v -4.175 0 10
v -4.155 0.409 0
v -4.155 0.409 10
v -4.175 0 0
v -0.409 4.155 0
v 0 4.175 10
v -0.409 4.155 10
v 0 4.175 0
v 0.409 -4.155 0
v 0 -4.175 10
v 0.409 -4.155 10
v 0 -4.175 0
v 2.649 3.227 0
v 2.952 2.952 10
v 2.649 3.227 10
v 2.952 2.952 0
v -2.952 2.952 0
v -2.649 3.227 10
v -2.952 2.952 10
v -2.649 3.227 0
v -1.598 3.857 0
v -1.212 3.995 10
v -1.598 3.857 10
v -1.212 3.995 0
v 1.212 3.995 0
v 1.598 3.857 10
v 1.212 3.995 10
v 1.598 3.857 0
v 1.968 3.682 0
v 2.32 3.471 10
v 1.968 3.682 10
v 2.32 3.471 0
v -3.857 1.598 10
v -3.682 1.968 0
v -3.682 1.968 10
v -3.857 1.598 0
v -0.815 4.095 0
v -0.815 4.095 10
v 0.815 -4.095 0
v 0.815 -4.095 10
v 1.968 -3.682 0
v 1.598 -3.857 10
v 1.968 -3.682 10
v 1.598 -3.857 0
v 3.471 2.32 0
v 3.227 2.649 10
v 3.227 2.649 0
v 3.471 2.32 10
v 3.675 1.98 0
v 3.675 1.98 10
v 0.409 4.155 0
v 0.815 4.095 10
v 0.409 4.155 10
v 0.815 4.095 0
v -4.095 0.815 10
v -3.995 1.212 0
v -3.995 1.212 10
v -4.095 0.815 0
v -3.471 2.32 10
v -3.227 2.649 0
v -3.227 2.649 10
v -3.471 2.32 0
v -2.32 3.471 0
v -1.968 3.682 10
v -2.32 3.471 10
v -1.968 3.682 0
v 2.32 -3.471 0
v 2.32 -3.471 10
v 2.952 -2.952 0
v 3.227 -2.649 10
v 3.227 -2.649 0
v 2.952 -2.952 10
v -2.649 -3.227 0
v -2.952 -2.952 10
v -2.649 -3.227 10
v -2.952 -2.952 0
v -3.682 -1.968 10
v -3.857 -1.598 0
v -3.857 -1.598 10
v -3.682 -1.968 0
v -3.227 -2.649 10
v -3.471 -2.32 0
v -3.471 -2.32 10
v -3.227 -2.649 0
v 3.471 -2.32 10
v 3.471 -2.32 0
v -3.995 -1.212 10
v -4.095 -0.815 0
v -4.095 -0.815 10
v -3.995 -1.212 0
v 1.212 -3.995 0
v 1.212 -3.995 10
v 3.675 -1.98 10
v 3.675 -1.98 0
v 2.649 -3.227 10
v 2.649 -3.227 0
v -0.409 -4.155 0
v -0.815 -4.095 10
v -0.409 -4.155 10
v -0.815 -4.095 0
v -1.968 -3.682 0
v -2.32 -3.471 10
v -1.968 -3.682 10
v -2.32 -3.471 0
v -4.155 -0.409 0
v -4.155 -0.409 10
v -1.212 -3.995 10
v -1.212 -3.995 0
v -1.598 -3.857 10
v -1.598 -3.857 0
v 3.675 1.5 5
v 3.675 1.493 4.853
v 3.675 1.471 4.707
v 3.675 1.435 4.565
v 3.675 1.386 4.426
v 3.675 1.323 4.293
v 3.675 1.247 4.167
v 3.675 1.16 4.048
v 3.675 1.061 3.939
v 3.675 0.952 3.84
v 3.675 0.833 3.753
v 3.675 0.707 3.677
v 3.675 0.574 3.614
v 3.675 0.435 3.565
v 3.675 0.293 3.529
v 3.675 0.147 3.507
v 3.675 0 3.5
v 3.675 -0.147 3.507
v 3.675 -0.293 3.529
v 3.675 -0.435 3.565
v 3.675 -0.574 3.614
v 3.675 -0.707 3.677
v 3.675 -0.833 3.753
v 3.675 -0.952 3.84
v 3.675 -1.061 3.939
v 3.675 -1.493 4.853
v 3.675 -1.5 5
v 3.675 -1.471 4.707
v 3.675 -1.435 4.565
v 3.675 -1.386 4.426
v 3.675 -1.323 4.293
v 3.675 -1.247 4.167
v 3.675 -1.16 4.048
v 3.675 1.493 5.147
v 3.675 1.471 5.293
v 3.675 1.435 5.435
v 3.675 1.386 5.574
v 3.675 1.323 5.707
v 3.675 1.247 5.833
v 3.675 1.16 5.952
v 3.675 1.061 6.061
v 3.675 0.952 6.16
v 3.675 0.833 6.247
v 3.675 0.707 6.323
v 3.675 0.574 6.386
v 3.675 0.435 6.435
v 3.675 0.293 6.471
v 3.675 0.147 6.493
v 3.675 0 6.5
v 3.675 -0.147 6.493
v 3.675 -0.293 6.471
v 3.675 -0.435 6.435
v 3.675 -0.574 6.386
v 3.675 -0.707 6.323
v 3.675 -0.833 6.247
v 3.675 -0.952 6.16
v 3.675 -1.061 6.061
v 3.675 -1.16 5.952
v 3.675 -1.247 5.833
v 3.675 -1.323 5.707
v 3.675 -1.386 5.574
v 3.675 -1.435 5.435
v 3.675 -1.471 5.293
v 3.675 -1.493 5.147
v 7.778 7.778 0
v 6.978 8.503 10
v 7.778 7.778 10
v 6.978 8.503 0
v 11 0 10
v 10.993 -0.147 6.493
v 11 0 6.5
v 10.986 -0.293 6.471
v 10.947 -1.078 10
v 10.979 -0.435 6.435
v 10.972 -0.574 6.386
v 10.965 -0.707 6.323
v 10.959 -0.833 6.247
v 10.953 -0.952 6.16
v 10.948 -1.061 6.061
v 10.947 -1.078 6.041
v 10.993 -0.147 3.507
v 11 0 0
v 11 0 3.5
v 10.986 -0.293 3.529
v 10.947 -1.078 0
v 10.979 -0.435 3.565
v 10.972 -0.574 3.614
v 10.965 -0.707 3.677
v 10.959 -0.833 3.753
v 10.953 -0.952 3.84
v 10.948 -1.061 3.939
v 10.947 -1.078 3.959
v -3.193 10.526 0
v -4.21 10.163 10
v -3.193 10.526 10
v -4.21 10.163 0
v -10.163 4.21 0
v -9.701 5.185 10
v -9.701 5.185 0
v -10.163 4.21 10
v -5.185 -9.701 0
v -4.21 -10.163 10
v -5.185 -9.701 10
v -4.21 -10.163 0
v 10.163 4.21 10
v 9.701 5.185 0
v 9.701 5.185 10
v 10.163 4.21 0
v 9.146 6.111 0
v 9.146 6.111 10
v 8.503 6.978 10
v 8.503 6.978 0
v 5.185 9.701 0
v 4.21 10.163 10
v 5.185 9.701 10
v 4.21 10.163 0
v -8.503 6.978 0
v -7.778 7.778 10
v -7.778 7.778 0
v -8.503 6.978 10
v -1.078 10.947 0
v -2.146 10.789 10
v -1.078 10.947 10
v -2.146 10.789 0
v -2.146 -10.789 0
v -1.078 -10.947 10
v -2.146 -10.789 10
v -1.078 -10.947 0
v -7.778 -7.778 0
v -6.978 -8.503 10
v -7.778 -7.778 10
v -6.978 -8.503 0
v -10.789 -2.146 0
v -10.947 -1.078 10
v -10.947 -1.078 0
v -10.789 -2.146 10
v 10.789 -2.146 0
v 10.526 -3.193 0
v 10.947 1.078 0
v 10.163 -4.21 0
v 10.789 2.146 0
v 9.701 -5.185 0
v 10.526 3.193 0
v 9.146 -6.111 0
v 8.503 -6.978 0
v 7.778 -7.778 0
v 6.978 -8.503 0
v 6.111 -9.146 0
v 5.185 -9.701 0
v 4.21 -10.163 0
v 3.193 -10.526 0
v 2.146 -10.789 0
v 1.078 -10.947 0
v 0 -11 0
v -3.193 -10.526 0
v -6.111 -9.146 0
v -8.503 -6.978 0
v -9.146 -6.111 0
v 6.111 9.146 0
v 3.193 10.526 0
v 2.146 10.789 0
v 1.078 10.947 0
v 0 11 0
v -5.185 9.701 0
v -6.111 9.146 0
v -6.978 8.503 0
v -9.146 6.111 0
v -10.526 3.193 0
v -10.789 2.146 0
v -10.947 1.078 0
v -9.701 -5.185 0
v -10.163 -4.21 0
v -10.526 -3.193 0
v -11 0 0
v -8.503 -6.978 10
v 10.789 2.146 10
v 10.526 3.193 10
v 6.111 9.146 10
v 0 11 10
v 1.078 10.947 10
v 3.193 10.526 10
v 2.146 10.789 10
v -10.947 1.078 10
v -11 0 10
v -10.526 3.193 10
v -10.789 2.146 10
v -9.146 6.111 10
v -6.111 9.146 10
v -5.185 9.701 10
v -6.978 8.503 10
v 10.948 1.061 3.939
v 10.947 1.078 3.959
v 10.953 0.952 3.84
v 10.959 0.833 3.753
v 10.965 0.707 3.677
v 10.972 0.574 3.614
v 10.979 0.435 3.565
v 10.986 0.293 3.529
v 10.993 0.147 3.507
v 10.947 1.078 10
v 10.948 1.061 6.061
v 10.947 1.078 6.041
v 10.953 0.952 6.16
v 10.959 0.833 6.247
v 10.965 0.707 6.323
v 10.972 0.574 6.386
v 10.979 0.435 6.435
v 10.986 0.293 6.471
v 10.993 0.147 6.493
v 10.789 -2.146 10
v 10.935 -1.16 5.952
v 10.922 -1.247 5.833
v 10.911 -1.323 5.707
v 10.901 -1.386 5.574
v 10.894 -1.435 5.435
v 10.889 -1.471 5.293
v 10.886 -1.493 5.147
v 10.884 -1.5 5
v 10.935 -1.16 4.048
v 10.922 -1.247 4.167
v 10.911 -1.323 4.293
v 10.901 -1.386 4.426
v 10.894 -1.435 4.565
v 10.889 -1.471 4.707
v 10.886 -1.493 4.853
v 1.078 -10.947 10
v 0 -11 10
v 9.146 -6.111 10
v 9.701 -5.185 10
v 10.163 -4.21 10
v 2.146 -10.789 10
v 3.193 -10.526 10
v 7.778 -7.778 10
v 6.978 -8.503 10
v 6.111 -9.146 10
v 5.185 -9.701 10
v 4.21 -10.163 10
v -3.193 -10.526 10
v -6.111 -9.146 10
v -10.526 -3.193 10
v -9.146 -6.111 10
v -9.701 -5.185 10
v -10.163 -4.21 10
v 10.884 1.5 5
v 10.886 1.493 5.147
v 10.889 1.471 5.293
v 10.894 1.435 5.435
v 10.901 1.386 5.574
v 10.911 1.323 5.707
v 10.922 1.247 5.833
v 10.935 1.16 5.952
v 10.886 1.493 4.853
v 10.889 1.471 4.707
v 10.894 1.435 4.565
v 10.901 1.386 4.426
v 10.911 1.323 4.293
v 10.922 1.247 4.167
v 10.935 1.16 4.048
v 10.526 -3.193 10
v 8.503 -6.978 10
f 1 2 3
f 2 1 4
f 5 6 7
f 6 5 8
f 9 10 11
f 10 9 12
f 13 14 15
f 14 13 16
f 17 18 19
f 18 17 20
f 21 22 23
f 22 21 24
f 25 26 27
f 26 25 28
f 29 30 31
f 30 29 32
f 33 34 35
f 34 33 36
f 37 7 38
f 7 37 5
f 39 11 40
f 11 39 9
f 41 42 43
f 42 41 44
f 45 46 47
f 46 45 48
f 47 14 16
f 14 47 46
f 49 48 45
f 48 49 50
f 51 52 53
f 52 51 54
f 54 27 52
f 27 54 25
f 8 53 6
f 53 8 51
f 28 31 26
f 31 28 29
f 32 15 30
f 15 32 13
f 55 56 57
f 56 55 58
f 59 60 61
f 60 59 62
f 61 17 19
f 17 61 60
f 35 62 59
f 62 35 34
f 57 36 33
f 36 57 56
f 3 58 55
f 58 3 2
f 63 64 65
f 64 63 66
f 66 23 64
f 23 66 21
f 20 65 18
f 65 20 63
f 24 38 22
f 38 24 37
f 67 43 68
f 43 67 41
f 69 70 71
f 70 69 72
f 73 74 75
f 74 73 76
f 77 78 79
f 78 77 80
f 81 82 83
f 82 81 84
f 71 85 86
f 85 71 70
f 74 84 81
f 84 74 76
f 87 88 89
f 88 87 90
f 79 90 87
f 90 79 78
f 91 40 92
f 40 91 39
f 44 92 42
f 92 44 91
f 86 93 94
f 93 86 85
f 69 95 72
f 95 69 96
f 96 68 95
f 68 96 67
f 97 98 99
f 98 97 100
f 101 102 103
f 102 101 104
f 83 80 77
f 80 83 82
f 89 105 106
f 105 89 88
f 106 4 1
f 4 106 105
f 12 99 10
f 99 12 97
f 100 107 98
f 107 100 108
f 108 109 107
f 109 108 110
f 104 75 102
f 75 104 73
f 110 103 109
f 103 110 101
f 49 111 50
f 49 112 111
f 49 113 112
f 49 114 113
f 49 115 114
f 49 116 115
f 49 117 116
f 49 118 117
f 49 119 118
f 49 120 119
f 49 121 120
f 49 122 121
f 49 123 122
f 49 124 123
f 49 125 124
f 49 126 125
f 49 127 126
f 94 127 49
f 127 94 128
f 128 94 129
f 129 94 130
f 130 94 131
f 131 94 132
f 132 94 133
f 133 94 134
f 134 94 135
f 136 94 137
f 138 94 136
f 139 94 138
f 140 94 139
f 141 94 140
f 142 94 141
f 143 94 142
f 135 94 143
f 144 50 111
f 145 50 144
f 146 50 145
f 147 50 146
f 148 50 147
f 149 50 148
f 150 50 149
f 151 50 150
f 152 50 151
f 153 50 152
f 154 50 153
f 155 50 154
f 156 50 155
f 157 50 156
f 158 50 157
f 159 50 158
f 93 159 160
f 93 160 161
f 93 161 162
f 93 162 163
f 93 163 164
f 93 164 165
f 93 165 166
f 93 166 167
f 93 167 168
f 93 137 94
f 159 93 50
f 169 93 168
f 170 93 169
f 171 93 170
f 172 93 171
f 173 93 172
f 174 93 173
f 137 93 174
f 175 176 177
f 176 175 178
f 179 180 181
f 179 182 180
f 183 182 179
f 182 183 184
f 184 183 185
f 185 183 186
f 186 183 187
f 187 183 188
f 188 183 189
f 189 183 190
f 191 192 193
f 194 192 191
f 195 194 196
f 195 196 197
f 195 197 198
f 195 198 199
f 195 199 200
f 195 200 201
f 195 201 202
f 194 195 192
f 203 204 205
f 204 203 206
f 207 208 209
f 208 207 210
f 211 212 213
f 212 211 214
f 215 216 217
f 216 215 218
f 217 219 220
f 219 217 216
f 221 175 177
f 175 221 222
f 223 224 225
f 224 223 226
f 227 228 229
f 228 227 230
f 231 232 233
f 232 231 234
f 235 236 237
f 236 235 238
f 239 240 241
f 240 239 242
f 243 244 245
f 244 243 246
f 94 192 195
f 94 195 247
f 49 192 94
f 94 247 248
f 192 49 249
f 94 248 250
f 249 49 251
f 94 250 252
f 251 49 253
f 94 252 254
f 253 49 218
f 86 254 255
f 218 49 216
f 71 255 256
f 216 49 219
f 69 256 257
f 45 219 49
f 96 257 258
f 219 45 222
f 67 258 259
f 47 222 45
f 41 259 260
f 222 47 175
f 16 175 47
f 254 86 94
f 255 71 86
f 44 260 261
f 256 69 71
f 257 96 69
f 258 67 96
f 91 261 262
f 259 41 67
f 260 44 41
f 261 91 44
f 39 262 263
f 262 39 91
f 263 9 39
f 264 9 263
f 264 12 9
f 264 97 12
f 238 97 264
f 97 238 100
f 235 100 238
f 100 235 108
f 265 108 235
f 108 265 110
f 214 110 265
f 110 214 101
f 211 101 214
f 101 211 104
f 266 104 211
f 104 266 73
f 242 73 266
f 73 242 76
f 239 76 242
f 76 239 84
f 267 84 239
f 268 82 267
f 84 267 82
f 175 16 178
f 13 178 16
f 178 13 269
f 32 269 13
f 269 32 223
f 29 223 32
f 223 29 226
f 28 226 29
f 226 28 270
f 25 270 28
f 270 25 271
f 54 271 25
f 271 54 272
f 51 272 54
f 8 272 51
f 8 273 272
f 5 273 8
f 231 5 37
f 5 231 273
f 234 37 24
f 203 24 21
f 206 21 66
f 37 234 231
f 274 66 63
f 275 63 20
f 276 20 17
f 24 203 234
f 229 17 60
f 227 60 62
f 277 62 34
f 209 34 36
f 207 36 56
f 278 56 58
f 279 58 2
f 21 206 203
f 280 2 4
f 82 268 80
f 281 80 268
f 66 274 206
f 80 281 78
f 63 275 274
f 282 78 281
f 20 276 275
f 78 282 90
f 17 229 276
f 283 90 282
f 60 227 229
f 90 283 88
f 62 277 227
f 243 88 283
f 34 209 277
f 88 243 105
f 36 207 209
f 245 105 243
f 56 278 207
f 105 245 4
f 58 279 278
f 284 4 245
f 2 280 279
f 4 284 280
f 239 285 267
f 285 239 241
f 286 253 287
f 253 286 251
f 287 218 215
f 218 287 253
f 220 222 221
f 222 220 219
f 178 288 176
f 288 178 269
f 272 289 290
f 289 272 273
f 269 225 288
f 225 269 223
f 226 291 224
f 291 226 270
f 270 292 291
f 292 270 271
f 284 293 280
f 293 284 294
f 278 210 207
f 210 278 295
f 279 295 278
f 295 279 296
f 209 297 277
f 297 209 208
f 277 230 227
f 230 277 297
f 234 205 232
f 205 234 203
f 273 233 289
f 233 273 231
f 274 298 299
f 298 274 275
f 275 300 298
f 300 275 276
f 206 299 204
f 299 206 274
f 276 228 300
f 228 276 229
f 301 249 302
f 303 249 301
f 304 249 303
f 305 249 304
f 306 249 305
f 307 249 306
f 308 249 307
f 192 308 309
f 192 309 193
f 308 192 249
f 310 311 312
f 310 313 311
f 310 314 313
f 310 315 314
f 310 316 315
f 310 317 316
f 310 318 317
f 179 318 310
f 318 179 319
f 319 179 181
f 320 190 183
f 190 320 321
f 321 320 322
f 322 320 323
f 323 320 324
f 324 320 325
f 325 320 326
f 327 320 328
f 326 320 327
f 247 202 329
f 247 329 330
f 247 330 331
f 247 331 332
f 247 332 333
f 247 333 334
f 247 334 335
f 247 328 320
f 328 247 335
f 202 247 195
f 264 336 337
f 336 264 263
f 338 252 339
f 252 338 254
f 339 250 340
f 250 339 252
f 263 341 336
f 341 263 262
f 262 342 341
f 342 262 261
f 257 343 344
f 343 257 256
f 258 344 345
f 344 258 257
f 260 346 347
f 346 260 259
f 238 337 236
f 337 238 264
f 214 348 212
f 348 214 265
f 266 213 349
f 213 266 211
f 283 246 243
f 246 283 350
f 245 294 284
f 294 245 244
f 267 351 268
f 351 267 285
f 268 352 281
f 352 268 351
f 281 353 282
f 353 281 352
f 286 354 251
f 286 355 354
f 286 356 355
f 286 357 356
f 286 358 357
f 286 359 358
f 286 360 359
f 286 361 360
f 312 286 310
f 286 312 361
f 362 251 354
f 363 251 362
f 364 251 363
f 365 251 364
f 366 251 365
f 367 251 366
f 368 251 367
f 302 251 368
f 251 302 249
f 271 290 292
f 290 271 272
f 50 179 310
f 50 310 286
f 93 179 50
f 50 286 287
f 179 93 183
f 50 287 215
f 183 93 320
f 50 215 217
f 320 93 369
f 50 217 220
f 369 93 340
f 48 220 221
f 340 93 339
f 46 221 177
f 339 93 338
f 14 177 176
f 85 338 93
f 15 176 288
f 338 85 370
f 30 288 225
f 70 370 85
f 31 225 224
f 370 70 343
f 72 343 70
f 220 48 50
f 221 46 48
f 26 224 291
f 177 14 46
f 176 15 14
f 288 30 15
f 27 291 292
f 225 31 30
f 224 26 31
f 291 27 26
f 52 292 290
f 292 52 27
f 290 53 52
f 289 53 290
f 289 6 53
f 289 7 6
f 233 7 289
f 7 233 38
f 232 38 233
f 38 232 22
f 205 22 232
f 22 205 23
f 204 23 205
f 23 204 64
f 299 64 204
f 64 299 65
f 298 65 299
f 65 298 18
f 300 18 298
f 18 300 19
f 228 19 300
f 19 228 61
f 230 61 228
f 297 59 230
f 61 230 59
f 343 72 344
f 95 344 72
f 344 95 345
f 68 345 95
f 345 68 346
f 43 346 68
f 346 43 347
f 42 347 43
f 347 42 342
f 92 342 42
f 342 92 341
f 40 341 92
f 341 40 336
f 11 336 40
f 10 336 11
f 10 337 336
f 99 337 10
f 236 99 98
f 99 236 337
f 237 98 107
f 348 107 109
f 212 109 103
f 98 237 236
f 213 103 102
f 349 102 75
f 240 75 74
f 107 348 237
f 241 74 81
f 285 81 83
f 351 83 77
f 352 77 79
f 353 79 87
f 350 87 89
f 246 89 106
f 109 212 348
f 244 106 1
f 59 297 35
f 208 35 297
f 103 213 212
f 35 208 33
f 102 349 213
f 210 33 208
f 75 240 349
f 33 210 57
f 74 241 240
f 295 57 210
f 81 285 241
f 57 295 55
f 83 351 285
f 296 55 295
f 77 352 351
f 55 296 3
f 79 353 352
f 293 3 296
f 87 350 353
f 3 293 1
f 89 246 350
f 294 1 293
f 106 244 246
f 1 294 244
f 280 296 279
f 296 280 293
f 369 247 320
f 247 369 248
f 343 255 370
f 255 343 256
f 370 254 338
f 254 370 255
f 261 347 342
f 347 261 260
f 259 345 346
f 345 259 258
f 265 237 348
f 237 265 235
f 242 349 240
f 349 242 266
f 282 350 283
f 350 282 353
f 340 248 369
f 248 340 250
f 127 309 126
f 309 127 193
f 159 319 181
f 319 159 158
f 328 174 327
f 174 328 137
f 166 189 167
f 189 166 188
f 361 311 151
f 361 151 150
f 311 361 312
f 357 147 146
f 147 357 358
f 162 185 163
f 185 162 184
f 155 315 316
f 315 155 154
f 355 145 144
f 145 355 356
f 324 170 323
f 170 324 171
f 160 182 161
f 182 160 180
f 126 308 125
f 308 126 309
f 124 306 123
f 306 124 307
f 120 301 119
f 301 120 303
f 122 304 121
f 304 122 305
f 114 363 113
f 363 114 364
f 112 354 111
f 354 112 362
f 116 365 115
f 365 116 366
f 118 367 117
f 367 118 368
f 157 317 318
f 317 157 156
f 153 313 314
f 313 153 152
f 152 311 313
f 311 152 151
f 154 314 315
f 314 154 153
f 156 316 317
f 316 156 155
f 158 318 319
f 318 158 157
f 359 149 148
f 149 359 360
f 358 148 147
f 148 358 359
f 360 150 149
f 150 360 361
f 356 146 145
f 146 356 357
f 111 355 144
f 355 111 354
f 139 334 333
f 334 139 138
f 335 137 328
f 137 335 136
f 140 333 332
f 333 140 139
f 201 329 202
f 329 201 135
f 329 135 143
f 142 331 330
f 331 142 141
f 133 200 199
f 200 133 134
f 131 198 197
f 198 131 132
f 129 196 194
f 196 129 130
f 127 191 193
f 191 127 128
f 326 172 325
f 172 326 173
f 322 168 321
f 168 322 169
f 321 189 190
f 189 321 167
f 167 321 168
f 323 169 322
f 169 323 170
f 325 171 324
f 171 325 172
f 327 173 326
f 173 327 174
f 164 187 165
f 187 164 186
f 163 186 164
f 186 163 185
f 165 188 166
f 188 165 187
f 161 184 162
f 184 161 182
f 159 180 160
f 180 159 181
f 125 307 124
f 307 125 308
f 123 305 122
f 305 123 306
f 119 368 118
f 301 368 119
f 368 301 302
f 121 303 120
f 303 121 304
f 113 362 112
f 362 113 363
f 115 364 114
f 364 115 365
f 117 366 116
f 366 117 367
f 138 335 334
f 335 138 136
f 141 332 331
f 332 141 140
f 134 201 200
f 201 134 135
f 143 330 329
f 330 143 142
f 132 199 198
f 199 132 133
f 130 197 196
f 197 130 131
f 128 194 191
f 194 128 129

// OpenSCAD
// file: parameters.scad
// =============================================================================
// Gen-BS — nightly 2026-10-09 (physics_scorer, honest magpylib watts)
// Pull the whole machine 2 mm inward: poles at R48 (was R50) with 26–68 mm bobbins and an 18.5 mm build. Shorter mean turn length lets each coil hold 612 turns on about 356 m of copper — ~14 m less than Gen-BO, which leaves real slack on a ~390 m spool for leads, a re-wind or a short spool — for about 1.7 % less power. Same Ø134 steel discs as Gen-BO.
// Clocking 0 deg (magnets N facing S) + D-flat keyed bore + index notch + flip-symmetric hole map.
// Windable 2-piece bobbin; turns = physics_scorer turns_fit; copper only between flanges.
// Steel back-iron: 2× Ø134 × 4.76 mm (3/16") mild-steel discs (steel_backiron_disc.dxf); magnets sit ON the steel
// (through-pockets) -> score with --back-iron.
// =============================================================================
topology            = "dual_rotor";

// --- Wire / winding (physics_scorer winding-fit) -------------------------------
wire_awg            = 26;
wire_od             = 0.45;     // insulated OD mm (bare 0.405)
fill_realistic      = 0.65;     // insulated-wire area / window (DENSE layered wind with a jig; scorer cap 0.65)
turns               = 612;       // = physics_scorer turns_fit (do NOT raise)
coil_former_type    = "bobbin";
coil_core_inset     = 18.50;     // radial copper build: hub = copper boundary inset by this
wind_build_axial    = 0.0;      // nothing proud of the flanges
wind_build_radial   = 0.0;

// --- Bobbin (base + lid) ---------------------------------------------------------
coil_id_r           = 26.00;    // copper boundary sector
coil_od_r           = 68.00;
span_deg            = 52.72;    // = pitch - 2*asin((wall+0.85)/coil_id_r) -> >=1.2 mm stator web
former_web          = 8.10;     // copper height between flanges (TALL copper: steel keeps Bz up)
flange_t            = 0.80;     // >= 0.8 mm FDM wall rule (tall winds push on the flanges)
wall                = 0.80;     // flange lip beyond copper
former_bare_h       = former_web + 2 * flange_t;
coil_envelope_h     = former_bare_h + 2 * wind_build_axial;
tab_w               = 7.0;
tab_len             = 7.0;
tab_h               = former_bare_h / 2;
pin_d               = 1.9;      // 1.75 mm filament locating pin
coil_mount_r        = coil_od_r + 0.2 + 4.0;
lead_y              = 1.6;
lead_slot_w         = 0.9;
lead_groove_d       = 0.6;

// --- Gap -------------------------------------------------------------------------
run_clear           = 0.50;     // rotor face -> flange
gap_spacer_h        = run_clear + wind_build_axial;
m2m                 = coil_envelope_h + 2 * run_clear;   // rotor face to rotor face (= gap_sleeve length)

// --- Stator ----------------------------------------------------------------------
coil_stations       = 6;
bay_clear           = 0.25;
stator_thick        = former_bare_h;                        // bobbins flush both faces
stator_od           = 156.0;
shaft_clear_stator  = 14.0;     // stator is static; gap sleeve OD 12 spins inside

// --- Rotor(s) --------------------------------------------------------------------
magnet_Br           = 1.43;     // N52
magnet_d_large      = 20.0;
magnet_h_large      = 5.0;      // one O20x5 per pocket
magnet_h_small      = 5.0;      // one O5x5 per pocket
halbach_magnetisation = "diametric"; // O5x5 assist magnets MUST be DIAMETRICALLY magnetised (tangential)
rotor_b_same_axis   = true;     // same-index magnets share one axis: N faces S across the gap
large_pocket_d      = 20.3;
small_pocket_d      = 5.3;
pocket_h            = 5.00;     // THROUGH the carrier: magnet back face sits on the steel disc (FLUSH seat: carrier = magnet height, magnet face level with the rotor face)
large_n             = 8;
R_large             = 48.0;
R_small_inner       = 41.8;
R_small_mid         = 48.0;
R_small_outer       = 54.2;
small_r_list        = [R_small_inner, R_small_mid, R_small_outer];   // O5 pockets between poles
carrier_od          = 134.0;
carrier_thick       = pocket_h;
hub_h               = 12.0;     // > steel_t + insert: radial set-screw clears the steel
hub_od              = 24.0;     // slim hub so the M4 brace rods fit at R~18 inside the coil ring
hub_insert_d        = 4.0;      // M3 heat-set insert, radial, bears on the D-flat
rotor_b_offset_deg  = 0.0;      // CLOCKING: magnets directly opposite
shaft_key           = "dflat";
dflat_depth         = 0.5;      // 8 mm shaft with 0.5 mm flat (7.5 across flat)
index_notch_d       = 3.0;

// --- Steel back-iron (buyable laser-cut) -------------------------------------------
steel_t             = 4.76;      // mild steel thickness (image method ignores it; sized from steel_flux.py so the return path stays well below saturation)
steel_center_hole   = 26.0;     // slips over the rotor hub (OD 24)
steel_od            = carrier_od;   // steel disc OD = rotor carrier OD

// --- Modular MAX interface ----------------------------------------------------------
shaft_bore          = 8.35;
dflat_x             = 4.0 - dflat_depth + (shaft_bore - 8.0) / 2;
bearing_d           = 21.85;
bearing_h           = 7.2;
m3_clear            = 3.5;
bolt_r_inner        = 30.0;     // M3 steel-disc clamp bolts (inside the magnet ring)
bolt_n_inner        = 4;
bolt_inner_angles   = [0, 90, 180, 270];
bolt_r_outer        = 63.0;     // M3 steel-disc clamp bolts (outside the magnet ring)
bolt_outer_angles   = [45, 135, 225, 315];
flange_bolt_r       = 73.0;     // frame rods: OUTSIDE the rotor OD (rotors spin inside them)
flange_bolt_n       = 6;
flange_bolt_offset  = 30.00;    // between coil stations -> never cuts a lead groove/tab
brace_r             = 18.0;
brace_d             = 4.3;      // temporary M4 jack rods (assembly only)
brace_n             = 4;
brace_angles        = [45, 135, 225, 315];          // flip-symmetric

spacer_pad_od       = 14.0;
spacer_pad_id       = m3_clear;
endbell_od          = 156.0;
endbell_thick       = 8.0;
endbell_shaft_clear = 10.0;
collar_h            = 10.0;
standoff_od         = 9.0;
frame_standoff_h    = run_clear + carrier_thick + hub_h + collar_h + 2.0;
sleeve_od           = 12.0;
plate_max_mm        = 410;

$fn = 64;
// main file
// Gen-BS — shaft collar with D-flat bore (set screw bears on the flat); print x4
include <parameters.scad>;
$fn = 64;
// D-flat keyed bore: flat faces +X (angle 0 = magnet pocket 0 = index notch)
module dflat_bore(h) {
    intersection() {
        cylinder(d=shaft_bore, h=h);
        translate([-shaft_bore, -shaft_bore, 0]) cube([shaft_bore + dflat_x, 2*shaft_bore, h]);
    }
}

od = 22; h = collar_h; set_d = 3.0;
difference() {
    cylinder(d=od, h=h);
    translate([0, 0, -0.1]) dflat_bore(h + 0.2);
    translate([0, 0, h/2]) rotate([0, 90, 0]) cylinder(d=set_d, h=od);
}
